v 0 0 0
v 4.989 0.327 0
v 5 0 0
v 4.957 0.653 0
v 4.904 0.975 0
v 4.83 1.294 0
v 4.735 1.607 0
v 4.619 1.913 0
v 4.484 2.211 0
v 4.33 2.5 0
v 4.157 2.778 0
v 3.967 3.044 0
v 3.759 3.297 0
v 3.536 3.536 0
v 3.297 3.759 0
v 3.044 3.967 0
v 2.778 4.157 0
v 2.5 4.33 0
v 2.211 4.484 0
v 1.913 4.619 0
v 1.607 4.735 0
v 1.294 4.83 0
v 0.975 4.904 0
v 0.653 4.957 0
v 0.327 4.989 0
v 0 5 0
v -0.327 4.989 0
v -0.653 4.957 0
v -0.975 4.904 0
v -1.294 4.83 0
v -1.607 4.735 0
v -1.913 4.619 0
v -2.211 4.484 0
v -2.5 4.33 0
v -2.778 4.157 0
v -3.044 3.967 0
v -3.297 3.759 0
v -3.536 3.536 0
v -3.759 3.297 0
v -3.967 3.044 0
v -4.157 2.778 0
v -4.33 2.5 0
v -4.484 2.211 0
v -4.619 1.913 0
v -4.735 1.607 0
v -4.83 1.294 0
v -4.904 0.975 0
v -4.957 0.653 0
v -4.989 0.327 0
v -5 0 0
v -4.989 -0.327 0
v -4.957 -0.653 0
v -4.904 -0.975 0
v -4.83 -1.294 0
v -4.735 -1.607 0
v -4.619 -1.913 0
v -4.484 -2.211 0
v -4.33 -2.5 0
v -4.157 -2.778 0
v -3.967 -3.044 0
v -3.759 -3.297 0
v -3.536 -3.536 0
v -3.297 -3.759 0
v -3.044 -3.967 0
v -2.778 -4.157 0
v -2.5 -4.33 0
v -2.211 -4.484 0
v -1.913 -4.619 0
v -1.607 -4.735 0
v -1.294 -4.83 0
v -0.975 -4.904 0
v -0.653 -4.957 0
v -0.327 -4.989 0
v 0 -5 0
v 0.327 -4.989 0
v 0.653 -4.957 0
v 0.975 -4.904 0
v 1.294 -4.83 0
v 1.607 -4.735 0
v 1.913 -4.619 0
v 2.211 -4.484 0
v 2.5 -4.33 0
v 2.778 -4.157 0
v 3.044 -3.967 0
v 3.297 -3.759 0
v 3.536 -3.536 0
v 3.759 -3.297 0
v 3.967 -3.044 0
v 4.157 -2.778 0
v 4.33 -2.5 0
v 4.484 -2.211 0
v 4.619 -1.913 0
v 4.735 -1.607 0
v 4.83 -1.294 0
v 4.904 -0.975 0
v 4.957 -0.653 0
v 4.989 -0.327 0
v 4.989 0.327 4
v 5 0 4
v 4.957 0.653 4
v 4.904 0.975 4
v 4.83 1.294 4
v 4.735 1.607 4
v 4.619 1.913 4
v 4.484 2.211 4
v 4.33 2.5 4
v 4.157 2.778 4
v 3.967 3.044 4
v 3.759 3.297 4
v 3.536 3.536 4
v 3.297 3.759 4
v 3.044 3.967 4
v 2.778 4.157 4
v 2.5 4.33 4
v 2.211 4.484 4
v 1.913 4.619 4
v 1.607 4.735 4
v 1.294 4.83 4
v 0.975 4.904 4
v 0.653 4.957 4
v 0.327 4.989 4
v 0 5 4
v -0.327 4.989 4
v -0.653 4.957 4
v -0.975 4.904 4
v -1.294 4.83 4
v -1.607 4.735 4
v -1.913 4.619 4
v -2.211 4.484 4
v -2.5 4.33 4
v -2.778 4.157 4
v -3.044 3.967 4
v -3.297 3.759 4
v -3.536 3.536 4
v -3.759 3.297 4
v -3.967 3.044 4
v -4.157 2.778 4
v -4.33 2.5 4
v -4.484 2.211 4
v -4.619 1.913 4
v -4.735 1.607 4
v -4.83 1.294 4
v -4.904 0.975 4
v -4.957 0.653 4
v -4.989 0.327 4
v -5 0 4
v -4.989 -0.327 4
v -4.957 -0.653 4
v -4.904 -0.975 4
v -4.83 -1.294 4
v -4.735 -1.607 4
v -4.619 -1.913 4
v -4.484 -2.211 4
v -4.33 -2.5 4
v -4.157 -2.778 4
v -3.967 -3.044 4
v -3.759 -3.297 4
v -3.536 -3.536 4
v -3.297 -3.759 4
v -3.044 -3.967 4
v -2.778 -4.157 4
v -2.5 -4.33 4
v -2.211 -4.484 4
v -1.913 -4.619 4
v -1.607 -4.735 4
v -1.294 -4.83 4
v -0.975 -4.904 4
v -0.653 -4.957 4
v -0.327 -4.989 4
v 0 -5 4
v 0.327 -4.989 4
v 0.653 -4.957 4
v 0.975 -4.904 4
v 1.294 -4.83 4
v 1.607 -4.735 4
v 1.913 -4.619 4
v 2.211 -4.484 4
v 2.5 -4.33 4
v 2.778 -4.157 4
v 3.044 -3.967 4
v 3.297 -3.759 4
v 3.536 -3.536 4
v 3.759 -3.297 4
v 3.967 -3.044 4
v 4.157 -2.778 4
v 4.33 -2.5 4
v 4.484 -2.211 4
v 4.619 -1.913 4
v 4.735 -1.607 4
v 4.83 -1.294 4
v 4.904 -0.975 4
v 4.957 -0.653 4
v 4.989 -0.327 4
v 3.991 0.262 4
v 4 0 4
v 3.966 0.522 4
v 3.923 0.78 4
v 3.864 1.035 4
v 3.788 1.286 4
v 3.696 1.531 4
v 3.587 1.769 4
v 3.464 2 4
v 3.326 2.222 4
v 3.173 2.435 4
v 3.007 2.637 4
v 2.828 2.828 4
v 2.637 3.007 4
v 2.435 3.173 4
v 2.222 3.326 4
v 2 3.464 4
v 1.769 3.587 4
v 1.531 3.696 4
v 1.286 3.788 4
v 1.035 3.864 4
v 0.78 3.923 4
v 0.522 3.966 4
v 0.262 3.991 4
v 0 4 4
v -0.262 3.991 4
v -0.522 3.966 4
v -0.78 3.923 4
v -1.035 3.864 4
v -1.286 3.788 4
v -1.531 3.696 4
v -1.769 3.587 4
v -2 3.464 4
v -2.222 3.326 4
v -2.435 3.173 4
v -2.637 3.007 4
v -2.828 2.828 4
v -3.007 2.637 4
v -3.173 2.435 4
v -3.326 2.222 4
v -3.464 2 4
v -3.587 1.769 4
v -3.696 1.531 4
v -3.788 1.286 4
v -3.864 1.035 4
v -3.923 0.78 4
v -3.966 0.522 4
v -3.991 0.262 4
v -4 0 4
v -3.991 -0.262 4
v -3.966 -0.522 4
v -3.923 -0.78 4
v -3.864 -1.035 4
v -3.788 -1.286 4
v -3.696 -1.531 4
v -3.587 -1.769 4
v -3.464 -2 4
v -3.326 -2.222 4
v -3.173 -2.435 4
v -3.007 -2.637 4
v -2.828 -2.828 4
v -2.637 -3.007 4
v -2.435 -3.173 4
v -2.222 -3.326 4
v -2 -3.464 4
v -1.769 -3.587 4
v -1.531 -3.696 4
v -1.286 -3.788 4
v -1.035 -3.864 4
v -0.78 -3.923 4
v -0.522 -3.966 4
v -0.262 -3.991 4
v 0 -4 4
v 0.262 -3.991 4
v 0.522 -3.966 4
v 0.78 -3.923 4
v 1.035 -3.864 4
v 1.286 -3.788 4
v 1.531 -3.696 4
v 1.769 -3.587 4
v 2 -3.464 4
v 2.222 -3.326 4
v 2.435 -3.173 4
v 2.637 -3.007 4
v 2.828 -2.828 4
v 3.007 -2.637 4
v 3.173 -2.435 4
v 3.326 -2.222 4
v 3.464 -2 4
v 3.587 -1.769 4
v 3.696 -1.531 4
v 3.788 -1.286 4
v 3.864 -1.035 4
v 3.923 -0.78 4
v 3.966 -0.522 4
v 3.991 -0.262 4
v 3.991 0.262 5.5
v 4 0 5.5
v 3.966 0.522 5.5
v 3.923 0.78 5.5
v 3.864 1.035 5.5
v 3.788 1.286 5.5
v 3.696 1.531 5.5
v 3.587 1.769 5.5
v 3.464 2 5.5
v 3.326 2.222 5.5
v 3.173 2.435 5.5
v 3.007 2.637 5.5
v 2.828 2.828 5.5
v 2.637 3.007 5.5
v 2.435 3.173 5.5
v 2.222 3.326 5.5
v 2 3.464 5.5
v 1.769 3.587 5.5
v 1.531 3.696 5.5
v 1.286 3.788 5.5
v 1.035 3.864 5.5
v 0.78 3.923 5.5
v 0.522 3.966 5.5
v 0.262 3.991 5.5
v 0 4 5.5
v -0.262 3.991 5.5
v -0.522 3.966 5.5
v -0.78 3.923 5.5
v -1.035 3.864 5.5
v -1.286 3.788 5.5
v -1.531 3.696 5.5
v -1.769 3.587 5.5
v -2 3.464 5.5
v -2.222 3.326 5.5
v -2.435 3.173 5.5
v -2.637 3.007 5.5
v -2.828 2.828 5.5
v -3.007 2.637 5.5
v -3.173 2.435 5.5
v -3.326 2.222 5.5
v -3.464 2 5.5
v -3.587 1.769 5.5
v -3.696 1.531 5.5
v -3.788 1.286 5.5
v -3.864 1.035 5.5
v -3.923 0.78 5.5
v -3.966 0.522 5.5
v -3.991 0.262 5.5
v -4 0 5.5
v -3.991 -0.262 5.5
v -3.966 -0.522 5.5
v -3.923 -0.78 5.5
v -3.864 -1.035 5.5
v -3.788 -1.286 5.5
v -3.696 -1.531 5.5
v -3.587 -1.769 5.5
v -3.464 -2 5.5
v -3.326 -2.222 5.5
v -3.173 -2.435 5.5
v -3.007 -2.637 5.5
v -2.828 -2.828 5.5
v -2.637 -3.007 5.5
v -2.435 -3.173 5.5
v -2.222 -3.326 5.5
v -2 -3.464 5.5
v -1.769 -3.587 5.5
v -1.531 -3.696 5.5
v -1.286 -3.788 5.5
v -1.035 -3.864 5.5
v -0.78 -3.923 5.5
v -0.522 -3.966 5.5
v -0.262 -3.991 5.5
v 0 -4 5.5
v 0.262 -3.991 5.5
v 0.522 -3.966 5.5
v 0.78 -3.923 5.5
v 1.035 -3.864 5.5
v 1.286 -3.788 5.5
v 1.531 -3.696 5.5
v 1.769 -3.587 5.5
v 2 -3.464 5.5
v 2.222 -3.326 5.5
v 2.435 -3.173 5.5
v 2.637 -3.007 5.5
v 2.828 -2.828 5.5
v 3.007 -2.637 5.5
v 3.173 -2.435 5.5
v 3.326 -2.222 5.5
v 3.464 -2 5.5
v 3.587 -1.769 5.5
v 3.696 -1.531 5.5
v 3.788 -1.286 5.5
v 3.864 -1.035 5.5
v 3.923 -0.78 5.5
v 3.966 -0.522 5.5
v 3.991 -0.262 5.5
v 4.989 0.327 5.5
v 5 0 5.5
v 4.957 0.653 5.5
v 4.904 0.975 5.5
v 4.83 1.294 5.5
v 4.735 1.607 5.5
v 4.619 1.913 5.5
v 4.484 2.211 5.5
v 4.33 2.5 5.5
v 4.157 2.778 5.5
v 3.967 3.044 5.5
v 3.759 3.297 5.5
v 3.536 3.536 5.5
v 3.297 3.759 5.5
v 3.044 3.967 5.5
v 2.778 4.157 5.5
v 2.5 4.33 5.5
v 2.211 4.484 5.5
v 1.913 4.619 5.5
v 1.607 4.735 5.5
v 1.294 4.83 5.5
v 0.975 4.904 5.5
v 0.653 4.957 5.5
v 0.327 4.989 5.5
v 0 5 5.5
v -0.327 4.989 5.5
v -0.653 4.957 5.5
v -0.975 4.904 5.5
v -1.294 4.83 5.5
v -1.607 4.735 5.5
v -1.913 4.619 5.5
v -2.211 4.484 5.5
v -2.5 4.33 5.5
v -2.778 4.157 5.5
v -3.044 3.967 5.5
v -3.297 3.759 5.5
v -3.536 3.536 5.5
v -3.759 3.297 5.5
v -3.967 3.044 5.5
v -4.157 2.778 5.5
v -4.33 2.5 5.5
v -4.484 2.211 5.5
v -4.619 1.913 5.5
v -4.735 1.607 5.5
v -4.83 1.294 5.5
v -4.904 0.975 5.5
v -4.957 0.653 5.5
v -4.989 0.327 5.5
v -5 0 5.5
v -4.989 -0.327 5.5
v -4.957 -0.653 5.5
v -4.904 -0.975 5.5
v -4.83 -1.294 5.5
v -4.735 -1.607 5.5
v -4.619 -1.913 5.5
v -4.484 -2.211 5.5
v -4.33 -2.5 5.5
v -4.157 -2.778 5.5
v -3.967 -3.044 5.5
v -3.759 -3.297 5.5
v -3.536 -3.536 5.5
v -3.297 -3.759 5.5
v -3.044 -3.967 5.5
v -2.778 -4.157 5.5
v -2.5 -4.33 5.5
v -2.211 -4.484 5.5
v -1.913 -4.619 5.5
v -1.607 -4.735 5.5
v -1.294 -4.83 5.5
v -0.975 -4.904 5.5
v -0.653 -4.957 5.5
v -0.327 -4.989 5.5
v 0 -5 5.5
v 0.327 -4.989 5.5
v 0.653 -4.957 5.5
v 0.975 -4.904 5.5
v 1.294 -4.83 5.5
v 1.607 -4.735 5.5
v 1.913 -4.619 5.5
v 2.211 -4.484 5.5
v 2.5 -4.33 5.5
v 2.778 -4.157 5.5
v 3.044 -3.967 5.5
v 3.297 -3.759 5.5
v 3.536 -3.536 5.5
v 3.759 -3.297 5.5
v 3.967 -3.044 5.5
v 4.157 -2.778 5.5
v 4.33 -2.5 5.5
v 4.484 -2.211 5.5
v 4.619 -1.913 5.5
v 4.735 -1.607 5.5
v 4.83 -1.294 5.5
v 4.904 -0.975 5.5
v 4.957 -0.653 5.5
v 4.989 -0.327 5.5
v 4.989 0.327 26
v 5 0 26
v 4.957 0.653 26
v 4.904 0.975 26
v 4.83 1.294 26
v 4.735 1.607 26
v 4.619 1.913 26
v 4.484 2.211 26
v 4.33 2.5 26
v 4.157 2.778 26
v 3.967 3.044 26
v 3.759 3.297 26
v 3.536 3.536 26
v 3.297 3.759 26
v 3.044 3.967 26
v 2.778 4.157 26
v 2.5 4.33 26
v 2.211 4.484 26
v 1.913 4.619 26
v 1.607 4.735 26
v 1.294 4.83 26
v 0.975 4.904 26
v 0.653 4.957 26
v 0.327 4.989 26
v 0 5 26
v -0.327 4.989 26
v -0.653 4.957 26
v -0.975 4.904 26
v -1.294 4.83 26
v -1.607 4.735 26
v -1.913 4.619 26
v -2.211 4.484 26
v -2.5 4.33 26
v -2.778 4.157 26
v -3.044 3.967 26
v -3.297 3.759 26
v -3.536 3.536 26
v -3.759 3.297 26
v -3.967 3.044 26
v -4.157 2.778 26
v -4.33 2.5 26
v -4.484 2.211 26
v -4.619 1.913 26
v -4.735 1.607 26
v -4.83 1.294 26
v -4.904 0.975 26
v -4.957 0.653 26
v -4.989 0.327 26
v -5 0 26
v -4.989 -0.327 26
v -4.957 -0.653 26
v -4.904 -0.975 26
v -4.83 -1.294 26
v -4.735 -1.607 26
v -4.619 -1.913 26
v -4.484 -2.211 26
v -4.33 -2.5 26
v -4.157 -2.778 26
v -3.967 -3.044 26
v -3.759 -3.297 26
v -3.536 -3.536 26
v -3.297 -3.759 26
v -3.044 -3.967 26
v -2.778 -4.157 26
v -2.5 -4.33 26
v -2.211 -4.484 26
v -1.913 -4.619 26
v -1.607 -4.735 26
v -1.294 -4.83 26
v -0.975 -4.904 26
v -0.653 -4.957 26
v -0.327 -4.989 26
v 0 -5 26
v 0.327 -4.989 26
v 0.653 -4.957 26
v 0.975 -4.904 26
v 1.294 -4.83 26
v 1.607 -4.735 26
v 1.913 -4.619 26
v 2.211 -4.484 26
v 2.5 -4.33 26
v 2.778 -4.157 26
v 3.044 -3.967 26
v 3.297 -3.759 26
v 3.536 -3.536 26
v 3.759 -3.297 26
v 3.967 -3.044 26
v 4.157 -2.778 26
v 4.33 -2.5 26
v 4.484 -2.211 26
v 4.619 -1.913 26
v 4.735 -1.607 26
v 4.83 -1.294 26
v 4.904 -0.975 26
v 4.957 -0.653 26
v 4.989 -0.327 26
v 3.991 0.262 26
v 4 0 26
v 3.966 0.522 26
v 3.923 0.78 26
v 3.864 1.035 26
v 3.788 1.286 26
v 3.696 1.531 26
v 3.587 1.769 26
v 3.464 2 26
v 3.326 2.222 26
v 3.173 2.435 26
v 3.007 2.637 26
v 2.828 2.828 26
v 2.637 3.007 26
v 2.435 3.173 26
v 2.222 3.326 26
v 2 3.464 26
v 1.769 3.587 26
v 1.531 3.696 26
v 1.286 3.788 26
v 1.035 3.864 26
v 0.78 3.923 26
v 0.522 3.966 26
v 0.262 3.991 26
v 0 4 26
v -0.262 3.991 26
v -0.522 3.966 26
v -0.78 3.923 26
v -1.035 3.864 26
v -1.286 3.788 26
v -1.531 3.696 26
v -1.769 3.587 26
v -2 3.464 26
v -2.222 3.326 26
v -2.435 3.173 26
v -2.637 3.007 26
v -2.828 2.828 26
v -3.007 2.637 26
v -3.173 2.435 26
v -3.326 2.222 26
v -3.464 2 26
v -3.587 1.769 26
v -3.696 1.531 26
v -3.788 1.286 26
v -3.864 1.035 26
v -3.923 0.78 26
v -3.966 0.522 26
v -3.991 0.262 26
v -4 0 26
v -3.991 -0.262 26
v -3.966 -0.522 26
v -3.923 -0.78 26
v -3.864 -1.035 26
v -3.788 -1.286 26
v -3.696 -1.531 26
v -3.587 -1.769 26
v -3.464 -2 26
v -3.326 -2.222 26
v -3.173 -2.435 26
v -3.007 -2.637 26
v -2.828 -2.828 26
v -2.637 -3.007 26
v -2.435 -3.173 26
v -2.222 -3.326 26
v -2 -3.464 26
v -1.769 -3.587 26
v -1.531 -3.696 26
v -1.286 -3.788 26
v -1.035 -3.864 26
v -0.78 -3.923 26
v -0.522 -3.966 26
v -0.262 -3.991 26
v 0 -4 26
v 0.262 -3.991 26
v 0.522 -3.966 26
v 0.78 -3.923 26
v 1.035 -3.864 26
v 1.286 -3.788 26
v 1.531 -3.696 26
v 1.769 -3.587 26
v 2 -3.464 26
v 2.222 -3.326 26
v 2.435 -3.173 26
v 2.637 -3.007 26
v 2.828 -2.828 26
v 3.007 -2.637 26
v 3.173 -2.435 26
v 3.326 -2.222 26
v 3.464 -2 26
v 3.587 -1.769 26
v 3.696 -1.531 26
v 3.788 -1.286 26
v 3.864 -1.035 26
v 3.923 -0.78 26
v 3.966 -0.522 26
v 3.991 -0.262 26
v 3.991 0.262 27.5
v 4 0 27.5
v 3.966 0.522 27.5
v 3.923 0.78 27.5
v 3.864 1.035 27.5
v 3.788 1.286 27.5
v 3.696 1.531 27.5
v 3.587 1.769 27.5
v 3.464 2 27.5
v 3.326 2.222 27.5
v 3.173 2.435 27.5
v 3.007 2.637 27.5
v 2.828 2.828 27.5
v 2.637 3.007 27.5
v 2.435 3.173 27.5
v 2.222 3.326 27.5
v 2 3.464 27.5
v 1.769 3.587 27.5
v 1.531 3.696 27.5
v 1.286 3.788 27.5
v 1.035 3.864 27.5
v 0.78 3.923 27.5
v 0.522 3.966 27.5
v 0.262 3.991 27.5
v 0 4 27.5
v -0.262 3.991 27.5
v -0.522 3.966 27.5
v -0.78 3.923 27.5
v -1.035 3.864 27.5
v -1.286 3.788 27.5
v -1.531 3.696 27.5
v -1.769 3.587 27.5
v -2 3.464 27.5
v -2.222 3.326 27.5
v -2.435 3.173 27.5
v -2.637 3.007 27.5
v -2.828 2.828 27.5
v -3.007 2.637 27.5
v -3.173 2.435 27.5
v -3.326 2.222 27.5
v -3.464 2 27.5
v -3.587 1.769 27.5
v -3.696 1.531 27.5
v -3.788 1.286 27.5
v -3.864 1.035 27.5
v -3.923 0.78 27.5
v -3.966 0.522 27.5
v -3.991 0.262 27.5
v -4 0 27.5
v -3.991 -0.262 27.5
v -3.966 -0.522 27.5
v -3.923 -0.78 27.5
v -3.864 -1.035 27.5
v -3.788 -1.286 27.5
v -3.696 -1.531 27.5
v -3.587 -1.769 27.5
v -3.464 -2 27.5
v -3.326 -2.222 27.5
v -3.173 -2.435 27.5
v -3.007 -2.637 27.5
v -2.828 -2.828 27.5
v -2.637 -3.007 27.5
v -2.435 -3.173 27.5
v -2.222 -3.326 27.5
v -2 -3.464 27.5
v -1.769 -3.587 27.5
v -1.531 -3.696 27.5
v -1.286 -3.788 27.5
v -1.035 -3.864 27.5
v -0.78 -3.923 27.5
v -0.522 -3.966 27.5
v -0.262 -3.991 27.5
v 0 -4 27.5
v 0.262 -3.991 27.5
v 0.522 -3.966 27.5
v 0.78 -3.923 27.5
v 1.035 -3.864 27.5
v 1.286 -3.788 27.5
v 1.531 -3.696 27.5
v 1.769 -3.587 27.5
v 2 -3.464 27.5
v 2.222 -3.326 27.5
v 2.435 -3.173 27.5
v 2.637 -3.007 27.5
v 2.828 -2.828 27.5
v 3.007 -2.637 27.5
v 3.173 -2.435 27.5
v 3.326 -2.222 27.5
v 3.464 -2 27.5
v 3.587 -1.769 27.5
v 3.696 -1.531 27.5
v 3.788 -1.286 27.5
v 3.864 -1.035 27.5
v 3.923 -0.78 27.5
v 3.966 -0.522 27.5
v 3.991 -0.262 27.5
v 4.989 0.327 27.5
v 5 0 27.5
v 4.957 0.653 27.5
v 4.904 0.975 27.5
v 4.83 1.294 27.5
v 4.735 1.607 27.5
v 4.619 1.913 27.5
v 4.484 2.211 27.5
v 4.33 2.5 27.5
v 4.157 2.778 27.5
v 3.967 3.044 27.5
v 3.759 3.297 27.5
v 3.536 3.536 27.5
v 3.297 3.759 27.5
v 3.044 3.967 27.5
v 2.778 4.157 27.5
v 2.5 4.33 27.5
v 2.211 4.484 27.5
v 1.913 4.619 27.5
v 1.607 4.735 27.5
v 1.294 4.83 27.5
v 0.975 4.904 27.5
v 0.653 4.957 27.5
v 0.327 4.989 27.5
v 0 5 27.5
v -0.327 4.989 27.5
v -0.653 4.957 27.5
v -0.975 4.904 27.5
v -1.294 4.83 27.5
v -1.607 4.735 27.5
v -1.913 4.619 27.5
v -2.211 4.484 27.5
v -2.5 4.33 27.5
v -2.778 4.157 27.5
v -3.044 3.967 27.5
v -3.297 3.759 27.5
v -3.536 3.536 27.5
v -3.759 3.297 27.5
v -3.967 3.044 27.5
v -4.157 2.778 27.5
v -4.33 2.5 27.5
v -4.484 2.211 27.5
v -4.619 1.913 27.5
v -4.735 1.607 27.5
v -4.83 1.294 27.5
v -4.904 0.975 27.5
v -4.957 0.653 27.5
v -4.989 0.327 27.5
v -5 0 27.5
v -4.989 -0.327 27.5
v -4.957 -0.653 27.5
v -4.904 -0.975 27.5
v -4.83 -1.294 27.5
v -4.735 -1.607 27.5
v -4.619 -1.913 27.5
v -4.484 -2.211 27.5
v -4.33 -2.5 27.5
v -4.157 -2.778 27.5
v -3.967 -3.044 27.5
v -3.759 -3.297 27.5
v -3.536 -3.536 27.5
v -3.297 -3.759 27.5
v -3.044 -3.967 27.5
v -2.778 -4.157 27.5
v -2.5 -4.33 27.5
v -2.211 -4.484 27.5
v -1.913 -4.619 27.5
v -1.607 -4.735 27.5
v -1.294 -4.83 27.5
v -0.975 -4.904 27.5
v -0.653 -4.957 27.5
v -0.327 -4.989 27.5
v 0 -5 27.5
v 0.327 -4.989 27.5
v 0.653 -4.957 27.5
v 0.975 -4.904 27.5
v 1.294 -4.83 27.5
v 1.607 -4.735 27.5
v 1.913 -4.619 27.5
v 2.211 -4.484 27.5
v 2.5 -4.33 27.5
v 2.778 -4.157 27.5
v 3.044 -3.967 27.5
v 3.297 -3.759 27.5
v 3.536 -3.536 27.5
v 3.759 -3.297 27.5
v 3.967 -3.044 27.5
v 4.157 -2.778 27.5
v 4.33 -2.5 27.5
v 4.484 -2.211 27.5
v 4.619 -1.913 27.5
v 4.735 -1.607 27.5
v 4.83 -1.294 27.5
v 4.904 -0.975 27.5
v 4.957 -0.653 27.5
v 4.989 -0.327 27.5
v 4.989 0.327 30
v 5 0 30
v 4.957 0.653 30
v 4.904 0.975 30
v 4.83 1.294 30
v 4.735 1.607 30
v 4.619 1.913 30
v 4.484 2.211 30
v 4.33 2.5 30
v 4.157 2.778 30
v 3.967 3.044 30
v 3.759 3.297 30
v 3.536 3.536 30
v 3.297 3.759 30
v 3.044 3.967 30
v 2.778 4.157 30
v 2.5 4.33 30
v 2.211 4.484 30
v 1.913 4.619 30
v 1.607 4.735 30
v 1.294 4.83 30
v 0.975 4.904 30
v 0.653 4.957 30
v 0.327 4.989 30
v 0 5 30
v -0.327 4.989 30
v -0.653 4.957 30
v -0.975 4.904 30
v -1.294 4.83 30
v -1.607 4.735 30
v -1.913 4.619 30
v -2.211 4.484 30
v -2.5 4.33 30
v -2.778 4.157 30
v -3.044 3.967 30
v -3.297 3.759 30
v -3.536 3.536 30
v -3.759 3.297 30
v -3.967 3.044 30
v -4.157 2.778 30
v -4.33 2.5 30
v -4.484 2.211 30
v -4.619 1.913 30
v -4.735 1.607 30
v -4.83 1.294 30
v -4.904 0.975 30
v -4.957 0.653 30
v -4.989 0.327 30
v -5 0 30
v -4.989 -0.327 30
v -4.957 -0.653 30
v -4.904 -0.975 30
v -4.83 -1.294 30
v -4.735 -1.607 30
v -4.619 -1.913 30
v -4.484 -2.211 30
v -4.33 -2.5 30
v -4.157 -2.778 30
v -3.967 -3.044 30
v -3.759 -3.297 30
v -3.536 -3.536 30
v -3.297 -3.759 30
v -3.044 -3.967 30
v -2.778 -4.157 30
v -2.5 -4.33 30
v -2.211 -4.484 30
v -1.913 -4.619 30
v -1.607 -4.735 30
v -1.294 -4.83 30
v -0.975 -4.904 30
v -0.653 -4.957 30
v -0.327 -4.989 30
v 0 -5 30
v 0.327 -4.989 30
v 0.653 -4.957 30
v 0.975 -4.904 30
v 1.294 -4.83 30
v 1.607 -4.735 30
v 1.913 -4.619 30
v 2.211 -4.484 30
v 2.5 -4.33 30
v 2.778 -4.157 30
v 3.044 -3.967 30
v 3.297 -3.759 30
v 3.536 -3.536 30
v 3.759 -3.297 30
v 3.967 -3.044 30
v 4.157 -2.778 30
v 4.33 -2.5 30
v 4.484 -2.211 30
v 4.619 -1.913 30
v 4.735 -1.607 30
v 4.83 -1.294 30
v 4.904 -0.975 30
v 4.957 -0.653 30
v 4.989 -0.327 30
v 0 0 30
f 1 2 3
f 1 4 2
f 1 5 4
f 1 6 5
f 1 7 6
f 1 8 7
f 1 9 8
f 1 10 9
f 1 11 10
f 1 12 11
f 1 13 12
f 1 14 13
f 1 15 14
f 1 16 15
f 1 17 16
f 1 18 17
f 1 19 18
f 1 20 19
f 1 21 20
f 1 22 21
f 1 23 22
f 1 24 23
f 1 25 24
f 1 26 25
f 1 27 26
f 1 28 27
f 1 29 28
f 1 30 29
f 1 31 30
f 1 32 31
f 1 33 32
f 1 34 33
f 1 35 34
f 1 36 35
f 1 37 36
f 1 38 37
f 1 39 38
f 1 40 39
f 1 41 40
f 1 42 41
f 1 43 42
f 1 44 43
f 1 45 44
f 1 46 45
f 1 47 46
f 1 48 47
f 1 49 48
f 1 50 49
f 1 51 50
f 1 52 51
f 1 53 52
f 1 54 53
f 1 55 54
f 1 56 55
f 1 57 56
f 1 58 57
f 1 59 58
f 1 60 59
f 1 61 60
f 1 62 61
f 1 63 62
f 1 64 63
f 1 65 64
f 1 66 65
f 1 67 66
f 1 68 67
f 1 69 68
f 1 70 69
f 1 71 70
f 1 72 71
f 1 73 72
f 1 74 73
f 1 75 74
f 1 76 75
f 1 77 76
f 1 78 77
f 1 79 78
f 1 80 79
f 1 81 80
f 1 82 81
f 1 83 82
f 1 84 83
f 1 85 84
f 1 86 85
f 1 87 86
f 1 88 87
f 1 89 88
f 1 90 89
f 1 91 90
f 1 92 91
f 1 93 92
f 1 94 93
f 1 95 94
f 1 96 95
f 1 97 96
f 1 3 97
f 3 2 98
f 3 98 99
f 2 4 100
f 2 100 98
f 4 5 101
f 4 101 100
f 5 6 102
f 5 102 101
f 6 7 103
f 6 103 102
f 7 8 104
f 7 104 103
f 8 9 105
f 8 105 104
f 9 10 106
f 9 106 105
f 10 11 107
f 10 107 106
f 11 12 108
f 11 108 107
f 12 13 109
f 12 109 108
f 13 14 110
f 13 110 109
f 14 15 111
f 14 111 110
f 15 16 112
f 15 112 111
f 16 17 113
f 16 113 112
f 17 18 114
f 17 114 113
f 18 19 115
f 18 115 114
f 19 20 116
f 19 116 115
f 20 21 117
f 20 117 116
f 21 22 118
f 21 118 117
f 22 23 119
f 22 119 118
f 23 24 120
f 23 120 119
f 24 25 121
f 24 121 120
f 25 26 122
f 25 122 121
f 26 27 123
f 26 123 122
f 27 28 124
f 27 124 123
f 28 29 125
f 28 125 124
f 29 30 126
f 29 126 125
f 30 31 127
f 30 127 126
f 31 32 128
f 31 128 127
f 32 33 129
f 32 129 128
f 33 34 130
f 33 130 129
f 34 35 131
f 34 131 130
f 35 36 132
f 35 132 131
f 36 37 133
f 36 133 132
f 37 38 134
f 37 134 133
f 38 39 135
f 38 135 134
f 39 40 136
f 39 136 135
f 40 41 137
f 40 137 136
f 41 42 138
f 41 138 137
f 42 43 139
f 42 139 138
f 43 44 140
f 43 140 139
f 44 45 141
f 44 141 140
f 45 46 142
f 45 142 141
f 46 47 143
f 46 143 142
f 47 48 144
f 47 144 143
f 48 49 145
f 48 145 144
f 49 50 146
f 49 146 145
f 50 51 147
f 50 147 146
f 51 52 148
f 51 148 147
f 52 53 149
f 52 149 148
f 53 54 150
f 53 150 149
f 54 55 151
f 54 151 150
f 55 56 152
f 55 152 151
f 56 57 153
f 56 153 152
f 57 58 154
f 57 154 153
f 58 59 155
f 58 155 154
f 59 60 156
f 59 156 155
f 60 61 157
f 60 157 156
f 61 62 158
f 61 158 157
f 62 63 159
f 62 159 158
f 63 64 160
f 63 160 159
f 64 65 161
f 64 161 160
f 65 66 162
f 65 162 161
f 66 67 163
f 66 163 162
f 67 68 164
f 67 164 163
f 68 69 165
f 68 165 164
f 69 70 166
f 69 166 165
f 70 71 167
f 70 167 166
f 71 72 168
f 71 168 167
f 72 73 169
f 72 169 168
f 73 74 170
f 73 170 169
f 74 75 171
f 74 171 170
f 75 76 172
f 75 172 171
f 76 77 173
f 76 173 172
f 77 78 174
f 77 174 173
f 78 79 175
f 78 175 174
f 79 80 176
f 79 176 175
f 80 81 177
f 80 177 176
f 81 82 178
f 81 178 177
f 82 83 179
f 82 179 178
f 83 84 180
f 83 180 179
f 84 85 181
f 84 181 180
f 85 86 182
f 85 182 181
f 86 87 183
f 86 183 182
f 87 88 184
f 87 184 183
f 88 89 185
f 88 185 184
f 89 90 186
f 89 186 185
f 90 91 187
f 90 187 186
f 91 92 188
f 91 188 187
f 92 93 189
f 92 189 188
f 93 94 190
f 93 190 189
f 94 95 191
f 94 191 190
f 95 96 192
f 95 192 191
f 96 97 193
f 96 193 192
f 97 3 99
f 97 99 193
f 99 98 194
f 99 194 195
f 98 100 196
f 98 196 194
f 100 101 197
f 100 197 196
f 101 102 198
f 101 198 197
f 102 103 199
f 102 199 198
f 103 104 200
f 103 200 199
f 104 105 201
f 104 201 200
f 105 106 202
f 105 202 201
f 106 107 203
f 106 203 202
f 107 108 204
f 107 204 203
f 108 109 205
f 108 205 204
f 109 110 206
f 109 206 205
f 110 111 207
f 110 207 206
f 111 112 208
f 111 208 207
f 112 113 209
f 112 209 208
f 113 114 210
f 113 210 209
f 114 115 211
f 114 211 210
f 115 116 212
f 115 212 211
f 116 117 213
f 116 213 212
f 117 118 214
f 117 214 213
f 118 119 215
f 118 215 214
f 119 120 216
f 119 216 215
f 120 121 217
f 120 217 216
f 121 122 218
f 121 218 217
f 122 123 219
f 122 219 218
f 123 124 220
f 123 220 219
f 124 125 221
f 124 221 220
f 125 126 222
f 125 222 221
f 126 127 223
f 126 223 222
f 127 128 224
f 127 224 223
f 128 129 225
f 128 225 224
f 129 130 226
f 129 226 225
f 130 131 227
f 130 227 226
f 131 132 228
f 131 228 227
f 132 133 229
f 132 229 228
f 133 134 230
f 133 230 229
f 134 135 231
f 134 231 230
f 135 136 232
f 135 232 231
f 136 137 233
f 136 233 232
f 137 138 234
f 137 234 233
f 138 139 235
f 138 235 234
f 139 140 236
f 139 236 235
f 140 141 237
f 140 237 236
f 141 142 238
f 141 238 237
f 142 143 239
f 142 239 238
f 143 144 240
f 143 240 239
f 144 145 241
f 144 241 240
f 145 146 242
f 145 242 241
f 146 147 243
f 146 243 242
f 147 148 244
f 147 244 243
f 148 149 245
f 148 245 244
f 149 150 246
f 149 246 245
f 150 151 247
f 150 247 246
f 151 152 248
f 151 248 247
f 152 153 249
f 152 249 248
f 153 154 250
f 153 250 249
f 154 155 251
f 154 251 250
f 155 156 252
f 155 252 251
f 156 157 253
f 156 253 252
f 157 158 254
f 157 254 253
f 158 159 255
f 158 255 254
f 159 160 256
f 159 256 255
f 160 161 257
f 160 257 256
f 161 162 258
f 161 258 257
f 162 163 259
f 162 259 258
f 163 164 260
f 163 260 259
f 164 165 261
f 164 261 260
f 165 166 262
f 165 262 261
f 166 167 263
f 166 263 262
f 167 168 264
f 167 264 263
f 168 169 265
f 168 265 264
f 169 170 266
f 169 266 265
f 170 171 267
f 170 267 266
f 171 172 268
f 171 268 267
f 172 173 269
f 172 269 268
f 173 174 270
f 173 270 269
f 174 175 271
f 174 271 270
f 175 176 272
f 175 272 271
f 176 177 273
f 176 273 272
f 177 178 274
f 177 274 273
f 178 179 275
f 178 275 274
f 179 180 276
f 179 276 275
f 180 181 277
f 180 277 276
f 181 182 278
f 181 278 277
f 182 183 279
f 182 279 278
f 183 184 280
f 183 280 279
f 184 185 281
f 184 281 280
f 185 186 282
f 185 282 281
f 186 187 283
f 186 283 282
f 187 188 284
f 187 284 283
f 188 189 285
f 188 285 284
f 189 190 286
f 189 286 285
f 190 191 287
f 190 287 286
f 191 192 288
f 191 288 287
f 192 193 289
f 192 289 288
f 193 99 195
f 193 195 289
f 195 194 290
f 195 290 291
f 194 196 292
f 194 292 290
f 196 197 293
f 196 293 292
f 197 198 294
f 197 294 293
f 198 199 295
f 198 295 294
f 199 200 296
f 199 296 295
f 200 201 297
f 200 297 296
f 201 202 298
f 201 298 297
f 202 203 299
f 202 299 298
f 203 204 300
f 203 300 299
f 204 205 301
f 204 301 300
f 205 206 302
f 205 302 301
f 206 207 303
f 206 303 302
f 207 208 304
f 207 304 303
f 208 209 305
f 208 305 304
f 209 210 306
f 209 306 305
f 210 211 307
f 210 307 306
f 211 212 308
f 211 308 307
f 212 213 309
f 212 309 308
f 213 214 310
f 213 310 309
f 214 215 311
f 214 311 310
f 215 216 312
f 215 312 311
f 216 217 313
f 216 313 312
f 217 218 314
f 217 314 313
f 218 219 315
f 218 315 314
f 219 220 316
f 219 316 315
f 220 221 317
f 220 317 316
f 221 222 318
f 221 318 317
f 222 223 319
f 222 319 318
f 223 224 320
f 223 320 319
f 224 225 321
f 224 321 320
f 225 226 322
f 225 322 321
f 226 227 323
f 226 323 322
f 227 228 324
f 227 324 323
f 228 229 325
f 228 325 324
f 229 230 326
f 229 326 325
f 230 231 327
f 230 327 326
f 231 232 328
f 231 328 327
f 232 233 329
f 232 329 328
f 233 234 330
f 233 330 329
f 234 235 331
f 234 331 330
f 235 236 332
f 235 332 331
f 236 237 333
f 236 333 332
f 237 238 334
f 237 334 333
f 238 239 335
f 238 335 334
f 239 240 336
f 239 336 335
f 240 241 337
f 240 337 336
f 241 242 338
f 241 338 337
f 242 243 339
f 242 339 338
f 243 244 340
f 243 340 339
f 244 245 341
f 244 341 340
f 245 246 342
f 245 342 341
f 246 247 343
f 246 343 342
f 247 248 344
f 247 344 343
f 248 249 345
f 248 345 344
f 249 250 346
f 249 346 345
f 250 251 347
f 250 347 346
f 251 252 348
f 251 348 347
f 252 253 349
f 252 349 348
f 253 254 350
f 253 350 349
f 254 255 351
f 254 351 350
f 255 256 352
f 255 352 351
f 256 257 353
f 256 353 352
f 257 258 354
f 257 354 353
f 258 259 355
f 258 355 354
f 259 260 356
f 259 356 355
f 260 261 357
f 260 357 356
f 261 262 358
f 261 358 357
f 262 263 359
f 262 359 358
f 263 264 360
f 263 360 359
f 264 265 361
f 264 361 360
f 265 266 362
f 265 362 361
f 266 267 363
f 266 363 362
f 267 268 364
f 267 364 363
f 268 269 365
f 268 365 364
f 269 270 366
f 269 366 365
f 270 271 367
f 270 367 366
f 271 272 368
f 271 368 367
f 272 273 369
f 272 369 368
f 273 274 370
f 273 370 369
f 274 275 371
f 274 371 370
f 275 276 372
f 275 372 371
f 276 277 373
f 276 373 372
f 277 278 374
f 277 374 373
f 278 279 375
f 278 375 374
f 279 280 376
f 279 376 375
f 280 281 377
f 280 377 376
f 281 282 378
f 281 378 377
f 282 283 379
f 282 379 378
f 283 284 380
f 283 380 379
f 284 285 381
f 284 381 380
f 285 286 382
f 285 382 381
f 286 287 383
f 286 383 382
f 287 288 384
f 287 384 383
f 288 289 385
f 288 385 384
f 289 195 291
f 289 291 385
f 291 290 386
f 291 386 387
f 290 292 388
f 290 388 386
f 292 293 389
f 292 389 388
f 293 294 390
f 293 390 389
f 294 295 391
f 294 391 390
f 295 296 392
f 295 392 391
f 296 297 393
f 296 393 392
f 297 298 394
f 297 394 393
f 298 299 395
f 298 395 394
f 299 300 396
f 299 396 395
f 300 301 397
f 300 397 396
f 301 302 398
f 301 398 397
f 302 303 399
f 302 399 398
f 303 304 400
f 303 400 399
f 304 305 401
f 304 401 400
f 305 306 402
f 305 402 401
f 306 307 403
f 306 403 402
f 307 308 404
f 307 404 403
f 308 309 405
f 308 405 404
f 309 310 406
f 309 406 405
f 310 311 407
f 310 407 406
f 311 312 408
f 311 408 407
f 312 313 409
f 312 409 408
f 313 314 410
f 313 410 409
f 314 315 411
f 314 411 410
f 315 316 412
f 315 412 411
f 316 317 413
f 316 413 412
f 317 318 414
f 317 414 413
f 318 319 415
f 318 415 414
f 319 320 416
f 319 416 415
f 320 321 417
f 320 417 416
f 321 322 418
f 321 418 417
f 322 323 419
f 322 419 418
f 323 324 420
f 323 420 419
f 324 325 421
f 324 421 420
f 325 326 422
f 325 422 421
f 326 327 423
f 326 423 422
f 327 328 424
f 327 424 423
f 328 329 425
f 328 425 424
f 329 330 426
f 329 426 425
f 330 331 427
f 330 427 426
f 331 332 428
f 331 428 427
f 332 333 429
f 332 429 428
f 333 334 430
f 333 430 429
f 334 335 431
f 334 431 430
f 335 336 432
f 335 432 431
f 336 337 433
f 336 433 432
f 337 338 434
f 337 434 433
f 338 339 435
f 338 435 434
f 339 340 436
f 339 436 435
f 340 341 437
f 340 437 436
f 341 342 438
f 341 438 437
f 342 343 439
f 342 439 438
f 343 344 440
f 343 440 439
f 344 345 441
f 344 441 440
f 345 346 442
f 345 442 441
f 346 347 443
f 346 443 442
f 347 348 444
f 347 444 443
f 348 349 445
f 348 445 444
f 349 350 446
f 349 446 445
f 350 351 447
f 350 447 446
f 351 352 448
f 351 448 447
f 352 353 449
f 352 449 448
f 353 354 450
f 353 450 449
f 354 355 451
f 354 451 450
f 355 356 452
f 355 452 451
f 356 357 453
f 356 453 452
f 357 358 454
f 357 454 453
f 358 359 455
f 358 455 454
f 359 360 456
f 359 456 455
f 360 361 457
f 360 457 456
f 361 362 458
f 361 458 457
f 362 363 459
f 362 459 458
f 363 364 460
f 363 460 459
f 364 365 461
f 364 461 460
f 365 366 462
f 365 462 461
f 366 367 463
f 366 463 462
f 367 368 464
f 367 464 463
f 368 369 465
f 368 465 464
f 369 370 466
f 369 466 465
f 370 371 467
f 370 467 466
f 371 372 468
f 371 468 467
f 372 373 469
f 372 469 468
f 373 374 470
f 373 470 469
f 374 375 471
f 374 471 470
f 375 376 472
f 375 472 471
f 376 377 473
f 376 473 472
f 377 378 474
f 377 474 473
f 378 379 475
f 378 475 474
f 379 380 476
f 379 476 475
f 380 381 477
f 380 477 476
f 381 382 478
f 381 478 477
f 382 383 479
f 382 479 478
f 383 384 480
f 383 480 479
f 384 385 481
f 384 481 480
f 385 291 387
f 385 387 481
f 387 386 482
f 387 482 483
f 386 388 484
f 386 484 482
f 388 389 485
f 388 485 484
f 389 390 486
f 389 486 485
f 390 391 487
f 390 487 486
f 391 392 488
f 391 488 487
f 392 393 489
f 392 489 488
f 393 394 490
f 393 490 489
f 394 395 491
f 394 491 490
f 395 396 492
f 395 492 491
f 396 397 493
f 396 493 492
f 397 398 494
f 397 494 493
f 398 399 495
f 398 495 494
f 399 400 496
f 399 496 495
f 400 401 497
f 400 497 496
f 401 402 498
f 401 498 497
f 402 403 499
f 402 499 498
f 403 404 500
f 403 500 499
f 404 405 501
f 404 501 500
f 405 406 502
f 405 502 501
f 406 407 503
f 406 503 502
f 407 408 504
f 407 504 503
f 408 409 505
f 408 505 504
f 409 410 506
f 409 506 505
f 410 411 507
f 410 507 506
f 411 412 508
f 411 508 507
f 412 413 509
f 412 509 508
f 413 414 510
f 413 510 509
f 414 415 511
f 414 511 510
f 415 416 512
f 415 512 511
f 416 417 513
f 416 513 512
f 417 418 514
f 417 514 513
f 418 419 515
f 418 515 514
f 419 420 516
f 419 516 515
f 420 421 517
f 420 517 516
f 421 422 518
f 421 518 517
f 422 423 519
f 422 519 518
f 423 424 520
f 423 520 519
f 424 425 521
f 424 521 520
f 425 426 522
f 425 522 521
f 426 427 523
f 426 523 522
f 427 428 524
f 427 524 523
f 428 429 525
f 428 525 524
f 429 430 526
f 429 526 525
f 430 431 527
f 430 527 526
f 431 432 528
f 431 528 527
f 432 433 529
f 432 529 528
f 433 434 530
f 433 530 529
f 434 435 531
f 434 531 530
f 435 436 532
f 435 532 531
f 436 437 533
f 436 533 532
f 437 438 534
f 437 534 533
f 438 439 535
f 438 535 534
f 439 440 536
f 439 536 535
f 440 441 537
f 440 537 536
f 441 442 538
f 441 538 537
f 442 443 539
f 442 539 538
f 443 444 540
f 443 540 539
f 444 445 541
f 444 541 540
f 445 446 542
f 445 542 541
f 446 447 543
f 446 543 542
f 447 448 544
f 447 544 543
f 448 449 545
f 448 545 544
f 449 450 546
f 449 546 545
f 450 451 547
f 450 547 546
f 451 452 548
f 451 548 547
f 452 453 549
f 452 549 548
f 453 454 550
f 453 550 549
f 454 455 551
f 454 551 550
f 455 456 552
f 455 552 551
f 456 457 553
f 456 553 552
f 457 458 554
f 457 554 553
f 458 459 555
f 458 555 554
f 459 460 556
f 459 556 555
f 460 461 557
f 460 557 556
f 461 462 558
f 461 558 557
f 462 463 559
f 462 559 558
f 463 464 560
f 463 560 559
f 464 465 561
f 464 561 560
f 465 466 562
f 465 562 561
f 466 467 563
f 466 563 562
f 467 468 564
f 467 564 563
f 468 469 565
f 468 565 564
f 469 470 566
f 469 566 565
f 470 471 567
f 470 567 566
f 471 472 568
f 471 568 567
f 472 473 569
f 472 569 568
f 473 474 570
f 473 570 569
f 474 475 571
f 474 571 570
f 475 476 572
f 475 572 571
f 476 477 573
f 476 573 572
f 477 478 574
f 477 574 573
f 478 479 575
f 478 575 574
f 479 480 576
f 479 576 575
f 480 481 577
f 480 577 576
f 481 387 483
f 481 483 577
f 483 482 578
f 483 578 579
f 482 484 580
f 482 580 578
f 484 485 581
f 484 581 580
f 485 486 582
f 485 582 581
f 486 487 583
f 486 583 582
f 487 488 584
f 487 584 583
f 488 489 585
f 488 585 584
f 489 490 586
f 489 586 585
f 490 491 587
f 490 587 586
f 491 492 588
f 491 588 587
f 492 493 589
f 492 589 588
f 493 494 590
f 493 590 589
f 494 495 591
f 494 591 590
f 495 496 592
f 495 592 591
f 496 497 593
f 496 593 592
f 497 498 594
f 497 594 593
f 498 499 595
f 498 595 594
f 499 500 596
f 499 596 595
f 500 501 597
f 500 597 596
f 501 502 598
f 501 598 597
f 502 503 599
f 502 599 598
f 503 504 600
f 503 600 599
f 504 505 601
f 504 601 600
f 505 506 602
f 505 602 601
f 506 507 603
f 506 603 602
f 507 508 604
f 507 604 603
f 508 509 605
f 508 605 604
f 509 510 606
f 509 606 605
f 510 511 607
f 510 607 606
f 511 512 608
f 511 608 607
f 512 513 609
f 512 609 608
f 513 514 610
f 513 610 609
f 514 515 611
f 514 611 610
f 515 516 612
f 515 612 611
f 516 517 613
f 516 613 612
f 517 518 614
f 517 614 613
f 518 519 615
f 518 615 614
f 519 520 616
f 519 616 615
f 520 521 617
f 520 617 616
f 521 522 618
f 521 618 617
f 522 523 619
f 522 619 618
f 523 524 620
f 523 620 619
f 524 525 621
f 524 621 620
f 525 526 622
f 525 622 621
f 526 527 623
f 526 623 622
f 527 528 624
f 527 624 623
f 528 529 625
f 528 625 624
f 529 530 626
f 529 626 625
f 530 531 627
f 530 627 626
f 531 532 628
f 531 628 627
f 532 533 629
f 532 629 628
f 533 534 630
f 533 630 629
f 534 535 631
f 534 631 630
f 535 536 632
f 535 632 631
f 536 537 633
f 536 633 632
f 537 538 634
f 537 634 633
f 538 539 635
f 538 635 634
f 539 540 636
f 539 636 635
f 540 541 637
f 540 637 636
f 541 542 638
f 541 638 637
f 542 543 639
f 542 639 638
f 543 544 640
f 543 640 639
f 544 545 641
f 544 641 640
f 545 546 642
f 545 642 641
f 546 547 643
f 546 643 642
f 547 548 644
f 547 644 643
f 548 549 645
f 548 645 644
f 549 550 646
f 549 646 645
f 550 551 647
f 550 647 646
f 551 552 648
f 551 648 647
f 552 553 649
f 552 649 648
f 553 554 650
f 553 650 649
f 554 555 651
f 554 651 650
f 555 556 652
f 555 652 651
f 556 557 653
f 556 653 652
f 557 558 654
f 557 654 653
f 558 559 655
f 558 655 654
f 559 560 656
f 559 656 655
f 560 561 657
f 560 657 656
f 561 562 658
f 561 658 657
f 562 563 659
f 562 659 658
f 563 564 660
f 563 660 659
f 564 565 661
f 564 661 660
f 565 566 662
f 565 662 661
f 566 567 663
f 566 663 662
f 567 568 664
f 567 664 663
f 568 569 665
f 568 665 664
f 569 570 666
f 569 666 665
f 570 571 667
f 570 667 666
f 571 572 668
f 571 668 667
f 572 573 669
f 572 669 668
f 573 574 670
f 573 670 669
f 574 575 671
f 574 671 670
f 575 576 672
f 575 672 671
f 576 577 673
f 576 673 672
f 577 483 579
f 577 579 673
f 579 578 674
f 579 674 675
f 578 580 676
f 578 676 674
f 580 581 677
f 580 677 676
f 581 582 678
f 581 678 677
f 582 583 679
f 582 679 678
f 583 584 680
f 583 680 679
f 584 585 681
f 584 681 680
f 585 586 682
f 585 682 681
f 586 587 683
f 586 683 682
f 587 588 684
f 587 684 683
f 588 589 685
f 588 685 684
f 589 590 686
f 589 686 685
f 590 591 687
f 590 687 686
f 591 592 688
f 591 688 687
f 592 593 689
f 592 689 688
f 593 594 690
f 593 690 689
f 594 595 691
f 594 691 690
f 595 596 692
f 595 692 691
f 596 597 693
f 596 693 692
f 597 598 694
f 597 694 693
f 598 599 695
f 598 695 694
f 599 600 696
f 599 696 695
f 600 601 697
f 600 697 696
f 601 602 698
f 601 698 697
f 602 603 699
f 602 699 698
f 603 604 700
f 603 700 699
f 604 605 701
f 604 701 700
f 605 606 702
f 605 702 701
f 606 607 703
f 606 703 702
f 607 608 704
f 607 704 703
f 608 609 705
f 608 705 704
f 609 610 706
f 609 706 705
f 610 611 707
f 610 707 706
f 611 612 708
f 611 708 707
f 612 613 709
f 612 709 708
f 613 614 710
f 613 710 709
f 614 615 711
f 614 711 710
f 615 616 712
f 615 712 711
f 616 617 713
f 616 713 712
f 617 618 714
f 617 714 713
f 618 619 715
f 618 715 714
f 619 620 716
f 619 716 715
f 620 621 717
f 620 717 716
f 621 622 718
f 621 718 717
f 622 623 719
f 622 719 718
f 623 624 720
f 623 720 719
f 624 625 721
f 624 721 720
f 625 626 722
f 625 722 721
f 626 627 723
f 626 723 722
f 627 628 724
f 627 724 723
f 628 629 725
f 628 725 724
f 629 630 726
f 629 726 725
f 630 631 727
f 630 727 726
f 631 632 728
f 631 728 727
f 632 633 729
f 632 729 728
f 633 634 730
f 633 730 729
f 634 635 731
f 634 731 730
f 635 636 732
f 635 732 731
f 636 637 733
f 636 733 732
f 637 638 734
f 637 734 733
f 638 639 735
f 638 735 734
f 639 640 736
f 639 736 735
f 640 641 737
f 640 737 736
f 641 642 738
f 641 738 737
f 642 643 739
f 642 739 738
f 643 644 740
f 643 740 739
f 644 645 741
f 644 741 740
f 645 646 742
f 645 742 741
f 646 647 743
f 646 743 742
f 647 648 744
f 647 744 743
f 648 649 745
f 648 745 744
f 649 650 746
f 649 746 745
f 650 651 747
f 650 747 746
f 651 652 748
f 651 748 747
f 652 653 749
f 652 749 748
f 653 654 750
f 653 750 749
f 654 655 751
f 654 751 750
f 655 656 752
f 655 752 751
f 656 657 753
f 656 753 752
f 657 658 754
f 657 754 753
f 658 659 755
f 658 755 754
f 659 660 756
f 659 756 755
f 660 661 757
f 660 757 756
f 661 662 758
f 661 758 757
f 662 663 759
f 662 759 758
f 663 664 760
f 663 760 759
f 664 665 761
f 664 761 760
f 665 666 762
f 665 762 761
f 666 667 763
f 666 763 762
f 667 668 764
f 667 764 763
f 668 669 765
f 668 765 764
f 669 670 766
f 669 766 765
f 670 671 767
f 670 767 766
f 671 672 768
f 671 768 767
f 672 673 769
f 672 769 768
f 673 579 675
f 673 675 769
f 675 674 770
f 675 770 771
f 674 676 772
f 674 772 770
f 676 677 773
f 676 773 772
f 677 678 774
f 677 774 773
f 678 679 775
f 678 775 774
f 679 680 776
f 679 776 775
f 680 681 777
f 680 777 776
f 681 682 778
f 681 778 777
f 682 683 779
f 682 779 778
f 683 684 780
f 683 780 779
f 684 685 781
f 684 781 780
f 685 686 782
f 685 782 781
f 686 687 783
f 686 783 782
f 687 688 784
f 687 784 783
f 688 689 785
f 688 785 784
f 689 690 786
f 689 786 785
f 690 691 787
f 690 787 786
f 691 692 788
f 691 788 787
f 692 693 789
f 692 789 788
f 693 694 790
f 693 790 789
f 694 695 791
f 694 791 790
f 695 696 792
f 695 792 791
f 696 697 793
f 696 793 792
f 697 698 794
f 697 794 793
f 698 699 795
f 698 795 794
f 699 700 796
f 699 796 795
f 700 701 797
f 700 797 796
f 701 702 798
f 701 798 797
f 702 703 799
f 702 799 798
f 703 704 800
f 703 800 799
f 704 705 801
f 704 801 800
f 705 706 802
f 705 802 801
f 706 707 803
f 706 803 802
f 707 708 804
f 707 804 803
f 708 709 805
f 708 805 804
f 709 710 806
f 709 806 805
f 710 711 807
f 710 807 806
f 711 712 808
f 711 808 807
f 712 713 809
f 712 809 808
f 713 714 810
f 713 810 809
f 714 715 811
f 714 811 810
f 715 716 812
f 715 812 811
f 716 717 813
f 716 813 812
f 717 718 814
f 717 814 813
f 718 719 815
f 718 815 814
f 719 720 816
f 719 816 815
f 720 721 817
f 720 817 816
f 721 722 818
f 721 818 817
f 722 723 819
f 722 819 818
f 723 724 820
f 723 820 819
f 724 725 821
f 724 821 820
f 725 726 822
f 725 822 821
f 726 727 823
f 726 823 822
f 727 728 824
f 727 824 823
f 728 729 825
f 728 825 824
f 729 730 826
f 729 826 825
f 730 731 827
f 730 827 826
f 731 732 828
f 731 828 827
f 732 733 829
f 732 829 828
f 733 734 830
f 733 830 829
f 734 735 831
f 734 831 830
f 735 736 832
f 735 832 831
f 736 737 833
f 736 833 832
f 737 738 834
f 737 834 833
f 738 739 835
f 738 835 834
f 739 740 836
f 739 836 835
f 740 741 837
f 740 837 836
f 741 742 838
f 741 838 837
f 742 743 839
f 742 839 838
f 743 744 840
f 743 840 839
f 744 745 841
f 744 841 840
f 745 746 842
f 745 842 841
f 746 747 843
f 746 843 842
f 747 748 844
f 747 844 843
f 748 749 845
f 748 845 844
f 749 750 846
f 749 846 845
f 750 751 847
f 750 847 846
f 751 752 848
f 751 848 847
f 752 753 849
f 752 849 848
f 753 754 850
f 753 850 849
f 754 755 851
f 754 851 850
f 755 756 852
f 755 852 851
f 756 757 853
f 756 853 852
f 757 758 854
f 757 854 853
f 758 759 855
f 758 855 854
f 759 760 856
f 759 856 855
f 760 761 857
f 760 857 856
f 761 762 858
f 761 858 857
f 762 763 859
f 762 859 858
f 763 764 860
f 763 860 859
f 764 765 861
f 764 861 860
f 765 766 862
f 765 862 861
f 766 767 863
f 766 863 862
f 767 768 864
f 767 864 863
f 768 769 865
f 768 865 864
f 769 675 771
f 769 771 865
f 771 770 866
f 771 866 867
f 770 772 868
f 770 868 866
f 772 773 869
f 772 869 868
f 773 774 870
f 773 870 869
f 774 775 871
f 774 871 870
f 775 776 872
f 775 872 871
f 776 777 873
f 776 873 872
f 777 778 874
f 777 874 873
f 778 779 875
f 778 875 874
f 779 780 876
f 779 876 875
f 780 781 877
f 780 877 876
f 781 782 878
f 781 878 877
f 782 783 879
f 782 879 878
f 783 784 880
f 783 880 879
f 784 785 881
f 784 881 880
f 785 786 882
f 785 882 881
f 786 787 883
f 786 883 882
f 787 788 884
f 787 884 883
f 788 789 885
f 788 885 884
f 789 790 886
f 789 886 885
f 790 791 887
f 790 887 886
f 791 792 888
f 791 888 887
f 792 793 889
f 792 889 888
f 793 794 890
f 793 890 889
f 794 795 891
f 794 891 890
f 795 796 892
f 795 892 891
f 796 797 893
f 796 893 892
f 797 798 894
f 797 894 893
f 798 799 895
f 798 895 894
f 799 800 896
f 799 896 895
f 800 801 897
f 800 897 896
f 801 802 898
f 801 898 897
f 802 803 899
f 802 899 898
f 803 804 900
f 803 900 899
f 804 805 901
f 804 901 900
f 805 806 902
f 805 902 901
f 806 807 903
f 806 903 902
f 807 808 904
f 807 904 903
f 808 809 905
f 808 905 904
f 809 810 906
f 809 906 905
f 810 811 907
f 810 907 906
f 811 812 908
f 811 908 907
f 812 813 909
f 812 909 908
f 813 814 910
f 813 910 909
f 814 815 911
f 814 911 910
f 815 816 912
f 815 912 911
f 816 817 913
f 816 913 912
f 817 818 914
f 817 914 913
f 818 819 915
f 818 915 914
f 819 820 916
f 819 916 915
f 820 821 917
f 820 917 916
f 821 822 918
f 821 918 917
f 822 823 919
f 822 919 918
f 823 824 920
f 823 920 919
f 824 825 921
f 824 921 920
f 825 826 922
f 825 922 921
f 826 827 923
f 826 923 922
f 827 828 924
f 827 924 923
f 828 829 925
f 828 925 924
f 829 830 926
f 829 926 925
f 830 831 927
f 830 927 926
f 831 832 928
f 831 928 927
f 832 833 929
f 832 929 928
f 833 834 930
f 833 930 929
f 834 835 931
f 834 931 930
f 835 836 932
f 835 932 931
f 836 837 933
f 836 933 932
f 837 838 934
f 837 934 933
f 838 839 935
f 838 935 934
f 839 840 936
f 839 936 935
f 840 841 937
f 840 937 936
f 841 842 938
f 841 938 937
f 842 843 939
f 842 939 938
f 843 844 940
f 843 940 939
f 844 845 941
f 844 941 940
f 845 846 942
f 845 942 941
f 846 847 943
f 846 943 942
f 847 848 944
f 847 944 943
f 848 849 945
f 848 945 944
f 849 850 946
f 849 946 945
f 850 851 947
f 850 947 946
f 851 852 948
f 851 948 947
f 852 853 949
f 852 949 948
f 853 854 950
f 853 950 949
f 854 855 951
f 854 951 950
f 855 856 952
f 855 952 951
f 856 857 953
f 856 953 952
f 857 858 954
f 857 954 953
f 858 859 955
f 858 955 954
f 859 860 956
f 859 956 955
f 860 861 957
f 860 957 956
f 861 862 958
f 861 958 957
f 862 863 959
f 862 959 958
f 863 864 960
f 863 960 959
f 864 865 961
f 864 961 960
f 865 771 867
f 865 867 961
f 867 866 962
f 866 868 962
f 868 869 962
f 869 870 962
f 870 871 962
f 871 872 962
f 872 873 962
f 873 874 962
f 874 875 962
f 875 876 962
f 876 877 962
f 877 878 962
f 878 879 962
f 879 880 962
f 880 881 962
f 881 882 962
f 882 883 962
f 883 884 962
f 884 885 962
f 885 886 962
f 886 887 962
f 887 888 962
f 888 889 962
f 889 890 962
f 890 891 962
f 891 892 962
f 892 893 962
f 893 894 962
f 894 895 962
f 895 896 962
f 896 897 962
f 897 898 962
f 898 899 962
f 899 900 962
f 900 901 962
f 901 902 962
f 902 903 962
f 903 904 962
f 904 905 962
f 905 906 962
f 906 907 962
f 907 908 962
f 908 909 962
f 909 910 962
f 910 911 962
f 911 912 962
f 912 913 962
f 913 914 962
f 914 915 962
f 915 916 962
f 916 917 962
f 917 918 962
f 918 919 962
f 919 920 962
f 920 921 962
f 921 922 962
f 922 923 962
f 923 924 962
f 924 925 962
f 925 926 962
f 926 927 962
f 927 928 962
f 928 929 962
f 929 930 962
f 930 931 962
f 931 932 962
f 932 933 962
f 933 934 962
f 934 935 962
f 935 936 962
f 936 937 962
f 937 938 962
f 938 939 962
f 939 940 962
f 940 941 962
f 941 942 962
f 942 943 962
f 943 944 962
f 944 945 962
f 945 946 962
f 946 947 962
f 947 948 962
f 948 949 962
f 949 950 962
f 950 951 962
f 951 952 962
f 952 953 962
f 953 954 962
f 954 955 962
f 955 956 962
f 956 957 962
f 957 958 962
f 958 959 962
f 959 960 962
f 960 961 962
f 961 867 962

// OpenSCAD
// Original MechIntel educational model. CC0-1.0. Units: mm.
// Not a standardized or load-rated component.
$fn=96;
// Section points: [radius, height], mm. Edit to change the profile.
section=[[0, 0], [5, 0], [5, 4], [4, 4], [4, 5.5], [5, 5.5], [5, 26], [4, 26], [4, 27.5], [5, 27.5], [5, 30], [0, 30]];
rotate_extrude($fn=96) polygon(points=section);
